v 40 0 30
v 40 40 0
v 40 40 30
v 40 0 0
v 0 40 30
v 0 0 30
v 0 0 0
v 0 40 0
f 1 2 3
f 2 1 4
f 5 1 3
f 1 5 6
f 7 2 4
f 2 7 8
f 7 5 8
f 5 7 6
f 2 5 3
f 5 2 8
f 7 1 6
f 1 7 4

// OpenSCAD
// Parameters
block_width = 40;
block_depth = 40;
block_height = 30;

pyramid_base = 10;
pyramid_height = 10;
spacing = 10;

// Create the main block
difference() {
    cube([block_width, block_depth, block_height], center = false);

    // Create 4 inverted pyramidal recesses
    for (x = [0:1]) {
        for (y = [0:1]) {
            translate([
                x * (pyramid_base + spacing) + (block_width - 2 * pyramid_base - spacing) / 2,
                y * (pyramid_base + spacing) + (block_depth - 2 * pyramid_base - spacing) / 2,
                block_height - pyramid_height
            ])
            rotate([0, 0, 0])
            pyramid(pyramid_base, pyramid_height);
        }
    }
}

// Module to create an inverted square pyramid
module pyramid(base, height) {
    polyhedron(
        points=[
            [0, 0, 0],
            [base, 0, 0],
            [base, base, 0],
            [0, base, 0],
            [base/2, base/2, -height]
        ],
        faces=[
            [0, 1, 4],
            [1, 2, 4],
            [2, 3, 4],
            [3, 0, 4],
            [0, 1, 2, 3]
        ]
    );
}
